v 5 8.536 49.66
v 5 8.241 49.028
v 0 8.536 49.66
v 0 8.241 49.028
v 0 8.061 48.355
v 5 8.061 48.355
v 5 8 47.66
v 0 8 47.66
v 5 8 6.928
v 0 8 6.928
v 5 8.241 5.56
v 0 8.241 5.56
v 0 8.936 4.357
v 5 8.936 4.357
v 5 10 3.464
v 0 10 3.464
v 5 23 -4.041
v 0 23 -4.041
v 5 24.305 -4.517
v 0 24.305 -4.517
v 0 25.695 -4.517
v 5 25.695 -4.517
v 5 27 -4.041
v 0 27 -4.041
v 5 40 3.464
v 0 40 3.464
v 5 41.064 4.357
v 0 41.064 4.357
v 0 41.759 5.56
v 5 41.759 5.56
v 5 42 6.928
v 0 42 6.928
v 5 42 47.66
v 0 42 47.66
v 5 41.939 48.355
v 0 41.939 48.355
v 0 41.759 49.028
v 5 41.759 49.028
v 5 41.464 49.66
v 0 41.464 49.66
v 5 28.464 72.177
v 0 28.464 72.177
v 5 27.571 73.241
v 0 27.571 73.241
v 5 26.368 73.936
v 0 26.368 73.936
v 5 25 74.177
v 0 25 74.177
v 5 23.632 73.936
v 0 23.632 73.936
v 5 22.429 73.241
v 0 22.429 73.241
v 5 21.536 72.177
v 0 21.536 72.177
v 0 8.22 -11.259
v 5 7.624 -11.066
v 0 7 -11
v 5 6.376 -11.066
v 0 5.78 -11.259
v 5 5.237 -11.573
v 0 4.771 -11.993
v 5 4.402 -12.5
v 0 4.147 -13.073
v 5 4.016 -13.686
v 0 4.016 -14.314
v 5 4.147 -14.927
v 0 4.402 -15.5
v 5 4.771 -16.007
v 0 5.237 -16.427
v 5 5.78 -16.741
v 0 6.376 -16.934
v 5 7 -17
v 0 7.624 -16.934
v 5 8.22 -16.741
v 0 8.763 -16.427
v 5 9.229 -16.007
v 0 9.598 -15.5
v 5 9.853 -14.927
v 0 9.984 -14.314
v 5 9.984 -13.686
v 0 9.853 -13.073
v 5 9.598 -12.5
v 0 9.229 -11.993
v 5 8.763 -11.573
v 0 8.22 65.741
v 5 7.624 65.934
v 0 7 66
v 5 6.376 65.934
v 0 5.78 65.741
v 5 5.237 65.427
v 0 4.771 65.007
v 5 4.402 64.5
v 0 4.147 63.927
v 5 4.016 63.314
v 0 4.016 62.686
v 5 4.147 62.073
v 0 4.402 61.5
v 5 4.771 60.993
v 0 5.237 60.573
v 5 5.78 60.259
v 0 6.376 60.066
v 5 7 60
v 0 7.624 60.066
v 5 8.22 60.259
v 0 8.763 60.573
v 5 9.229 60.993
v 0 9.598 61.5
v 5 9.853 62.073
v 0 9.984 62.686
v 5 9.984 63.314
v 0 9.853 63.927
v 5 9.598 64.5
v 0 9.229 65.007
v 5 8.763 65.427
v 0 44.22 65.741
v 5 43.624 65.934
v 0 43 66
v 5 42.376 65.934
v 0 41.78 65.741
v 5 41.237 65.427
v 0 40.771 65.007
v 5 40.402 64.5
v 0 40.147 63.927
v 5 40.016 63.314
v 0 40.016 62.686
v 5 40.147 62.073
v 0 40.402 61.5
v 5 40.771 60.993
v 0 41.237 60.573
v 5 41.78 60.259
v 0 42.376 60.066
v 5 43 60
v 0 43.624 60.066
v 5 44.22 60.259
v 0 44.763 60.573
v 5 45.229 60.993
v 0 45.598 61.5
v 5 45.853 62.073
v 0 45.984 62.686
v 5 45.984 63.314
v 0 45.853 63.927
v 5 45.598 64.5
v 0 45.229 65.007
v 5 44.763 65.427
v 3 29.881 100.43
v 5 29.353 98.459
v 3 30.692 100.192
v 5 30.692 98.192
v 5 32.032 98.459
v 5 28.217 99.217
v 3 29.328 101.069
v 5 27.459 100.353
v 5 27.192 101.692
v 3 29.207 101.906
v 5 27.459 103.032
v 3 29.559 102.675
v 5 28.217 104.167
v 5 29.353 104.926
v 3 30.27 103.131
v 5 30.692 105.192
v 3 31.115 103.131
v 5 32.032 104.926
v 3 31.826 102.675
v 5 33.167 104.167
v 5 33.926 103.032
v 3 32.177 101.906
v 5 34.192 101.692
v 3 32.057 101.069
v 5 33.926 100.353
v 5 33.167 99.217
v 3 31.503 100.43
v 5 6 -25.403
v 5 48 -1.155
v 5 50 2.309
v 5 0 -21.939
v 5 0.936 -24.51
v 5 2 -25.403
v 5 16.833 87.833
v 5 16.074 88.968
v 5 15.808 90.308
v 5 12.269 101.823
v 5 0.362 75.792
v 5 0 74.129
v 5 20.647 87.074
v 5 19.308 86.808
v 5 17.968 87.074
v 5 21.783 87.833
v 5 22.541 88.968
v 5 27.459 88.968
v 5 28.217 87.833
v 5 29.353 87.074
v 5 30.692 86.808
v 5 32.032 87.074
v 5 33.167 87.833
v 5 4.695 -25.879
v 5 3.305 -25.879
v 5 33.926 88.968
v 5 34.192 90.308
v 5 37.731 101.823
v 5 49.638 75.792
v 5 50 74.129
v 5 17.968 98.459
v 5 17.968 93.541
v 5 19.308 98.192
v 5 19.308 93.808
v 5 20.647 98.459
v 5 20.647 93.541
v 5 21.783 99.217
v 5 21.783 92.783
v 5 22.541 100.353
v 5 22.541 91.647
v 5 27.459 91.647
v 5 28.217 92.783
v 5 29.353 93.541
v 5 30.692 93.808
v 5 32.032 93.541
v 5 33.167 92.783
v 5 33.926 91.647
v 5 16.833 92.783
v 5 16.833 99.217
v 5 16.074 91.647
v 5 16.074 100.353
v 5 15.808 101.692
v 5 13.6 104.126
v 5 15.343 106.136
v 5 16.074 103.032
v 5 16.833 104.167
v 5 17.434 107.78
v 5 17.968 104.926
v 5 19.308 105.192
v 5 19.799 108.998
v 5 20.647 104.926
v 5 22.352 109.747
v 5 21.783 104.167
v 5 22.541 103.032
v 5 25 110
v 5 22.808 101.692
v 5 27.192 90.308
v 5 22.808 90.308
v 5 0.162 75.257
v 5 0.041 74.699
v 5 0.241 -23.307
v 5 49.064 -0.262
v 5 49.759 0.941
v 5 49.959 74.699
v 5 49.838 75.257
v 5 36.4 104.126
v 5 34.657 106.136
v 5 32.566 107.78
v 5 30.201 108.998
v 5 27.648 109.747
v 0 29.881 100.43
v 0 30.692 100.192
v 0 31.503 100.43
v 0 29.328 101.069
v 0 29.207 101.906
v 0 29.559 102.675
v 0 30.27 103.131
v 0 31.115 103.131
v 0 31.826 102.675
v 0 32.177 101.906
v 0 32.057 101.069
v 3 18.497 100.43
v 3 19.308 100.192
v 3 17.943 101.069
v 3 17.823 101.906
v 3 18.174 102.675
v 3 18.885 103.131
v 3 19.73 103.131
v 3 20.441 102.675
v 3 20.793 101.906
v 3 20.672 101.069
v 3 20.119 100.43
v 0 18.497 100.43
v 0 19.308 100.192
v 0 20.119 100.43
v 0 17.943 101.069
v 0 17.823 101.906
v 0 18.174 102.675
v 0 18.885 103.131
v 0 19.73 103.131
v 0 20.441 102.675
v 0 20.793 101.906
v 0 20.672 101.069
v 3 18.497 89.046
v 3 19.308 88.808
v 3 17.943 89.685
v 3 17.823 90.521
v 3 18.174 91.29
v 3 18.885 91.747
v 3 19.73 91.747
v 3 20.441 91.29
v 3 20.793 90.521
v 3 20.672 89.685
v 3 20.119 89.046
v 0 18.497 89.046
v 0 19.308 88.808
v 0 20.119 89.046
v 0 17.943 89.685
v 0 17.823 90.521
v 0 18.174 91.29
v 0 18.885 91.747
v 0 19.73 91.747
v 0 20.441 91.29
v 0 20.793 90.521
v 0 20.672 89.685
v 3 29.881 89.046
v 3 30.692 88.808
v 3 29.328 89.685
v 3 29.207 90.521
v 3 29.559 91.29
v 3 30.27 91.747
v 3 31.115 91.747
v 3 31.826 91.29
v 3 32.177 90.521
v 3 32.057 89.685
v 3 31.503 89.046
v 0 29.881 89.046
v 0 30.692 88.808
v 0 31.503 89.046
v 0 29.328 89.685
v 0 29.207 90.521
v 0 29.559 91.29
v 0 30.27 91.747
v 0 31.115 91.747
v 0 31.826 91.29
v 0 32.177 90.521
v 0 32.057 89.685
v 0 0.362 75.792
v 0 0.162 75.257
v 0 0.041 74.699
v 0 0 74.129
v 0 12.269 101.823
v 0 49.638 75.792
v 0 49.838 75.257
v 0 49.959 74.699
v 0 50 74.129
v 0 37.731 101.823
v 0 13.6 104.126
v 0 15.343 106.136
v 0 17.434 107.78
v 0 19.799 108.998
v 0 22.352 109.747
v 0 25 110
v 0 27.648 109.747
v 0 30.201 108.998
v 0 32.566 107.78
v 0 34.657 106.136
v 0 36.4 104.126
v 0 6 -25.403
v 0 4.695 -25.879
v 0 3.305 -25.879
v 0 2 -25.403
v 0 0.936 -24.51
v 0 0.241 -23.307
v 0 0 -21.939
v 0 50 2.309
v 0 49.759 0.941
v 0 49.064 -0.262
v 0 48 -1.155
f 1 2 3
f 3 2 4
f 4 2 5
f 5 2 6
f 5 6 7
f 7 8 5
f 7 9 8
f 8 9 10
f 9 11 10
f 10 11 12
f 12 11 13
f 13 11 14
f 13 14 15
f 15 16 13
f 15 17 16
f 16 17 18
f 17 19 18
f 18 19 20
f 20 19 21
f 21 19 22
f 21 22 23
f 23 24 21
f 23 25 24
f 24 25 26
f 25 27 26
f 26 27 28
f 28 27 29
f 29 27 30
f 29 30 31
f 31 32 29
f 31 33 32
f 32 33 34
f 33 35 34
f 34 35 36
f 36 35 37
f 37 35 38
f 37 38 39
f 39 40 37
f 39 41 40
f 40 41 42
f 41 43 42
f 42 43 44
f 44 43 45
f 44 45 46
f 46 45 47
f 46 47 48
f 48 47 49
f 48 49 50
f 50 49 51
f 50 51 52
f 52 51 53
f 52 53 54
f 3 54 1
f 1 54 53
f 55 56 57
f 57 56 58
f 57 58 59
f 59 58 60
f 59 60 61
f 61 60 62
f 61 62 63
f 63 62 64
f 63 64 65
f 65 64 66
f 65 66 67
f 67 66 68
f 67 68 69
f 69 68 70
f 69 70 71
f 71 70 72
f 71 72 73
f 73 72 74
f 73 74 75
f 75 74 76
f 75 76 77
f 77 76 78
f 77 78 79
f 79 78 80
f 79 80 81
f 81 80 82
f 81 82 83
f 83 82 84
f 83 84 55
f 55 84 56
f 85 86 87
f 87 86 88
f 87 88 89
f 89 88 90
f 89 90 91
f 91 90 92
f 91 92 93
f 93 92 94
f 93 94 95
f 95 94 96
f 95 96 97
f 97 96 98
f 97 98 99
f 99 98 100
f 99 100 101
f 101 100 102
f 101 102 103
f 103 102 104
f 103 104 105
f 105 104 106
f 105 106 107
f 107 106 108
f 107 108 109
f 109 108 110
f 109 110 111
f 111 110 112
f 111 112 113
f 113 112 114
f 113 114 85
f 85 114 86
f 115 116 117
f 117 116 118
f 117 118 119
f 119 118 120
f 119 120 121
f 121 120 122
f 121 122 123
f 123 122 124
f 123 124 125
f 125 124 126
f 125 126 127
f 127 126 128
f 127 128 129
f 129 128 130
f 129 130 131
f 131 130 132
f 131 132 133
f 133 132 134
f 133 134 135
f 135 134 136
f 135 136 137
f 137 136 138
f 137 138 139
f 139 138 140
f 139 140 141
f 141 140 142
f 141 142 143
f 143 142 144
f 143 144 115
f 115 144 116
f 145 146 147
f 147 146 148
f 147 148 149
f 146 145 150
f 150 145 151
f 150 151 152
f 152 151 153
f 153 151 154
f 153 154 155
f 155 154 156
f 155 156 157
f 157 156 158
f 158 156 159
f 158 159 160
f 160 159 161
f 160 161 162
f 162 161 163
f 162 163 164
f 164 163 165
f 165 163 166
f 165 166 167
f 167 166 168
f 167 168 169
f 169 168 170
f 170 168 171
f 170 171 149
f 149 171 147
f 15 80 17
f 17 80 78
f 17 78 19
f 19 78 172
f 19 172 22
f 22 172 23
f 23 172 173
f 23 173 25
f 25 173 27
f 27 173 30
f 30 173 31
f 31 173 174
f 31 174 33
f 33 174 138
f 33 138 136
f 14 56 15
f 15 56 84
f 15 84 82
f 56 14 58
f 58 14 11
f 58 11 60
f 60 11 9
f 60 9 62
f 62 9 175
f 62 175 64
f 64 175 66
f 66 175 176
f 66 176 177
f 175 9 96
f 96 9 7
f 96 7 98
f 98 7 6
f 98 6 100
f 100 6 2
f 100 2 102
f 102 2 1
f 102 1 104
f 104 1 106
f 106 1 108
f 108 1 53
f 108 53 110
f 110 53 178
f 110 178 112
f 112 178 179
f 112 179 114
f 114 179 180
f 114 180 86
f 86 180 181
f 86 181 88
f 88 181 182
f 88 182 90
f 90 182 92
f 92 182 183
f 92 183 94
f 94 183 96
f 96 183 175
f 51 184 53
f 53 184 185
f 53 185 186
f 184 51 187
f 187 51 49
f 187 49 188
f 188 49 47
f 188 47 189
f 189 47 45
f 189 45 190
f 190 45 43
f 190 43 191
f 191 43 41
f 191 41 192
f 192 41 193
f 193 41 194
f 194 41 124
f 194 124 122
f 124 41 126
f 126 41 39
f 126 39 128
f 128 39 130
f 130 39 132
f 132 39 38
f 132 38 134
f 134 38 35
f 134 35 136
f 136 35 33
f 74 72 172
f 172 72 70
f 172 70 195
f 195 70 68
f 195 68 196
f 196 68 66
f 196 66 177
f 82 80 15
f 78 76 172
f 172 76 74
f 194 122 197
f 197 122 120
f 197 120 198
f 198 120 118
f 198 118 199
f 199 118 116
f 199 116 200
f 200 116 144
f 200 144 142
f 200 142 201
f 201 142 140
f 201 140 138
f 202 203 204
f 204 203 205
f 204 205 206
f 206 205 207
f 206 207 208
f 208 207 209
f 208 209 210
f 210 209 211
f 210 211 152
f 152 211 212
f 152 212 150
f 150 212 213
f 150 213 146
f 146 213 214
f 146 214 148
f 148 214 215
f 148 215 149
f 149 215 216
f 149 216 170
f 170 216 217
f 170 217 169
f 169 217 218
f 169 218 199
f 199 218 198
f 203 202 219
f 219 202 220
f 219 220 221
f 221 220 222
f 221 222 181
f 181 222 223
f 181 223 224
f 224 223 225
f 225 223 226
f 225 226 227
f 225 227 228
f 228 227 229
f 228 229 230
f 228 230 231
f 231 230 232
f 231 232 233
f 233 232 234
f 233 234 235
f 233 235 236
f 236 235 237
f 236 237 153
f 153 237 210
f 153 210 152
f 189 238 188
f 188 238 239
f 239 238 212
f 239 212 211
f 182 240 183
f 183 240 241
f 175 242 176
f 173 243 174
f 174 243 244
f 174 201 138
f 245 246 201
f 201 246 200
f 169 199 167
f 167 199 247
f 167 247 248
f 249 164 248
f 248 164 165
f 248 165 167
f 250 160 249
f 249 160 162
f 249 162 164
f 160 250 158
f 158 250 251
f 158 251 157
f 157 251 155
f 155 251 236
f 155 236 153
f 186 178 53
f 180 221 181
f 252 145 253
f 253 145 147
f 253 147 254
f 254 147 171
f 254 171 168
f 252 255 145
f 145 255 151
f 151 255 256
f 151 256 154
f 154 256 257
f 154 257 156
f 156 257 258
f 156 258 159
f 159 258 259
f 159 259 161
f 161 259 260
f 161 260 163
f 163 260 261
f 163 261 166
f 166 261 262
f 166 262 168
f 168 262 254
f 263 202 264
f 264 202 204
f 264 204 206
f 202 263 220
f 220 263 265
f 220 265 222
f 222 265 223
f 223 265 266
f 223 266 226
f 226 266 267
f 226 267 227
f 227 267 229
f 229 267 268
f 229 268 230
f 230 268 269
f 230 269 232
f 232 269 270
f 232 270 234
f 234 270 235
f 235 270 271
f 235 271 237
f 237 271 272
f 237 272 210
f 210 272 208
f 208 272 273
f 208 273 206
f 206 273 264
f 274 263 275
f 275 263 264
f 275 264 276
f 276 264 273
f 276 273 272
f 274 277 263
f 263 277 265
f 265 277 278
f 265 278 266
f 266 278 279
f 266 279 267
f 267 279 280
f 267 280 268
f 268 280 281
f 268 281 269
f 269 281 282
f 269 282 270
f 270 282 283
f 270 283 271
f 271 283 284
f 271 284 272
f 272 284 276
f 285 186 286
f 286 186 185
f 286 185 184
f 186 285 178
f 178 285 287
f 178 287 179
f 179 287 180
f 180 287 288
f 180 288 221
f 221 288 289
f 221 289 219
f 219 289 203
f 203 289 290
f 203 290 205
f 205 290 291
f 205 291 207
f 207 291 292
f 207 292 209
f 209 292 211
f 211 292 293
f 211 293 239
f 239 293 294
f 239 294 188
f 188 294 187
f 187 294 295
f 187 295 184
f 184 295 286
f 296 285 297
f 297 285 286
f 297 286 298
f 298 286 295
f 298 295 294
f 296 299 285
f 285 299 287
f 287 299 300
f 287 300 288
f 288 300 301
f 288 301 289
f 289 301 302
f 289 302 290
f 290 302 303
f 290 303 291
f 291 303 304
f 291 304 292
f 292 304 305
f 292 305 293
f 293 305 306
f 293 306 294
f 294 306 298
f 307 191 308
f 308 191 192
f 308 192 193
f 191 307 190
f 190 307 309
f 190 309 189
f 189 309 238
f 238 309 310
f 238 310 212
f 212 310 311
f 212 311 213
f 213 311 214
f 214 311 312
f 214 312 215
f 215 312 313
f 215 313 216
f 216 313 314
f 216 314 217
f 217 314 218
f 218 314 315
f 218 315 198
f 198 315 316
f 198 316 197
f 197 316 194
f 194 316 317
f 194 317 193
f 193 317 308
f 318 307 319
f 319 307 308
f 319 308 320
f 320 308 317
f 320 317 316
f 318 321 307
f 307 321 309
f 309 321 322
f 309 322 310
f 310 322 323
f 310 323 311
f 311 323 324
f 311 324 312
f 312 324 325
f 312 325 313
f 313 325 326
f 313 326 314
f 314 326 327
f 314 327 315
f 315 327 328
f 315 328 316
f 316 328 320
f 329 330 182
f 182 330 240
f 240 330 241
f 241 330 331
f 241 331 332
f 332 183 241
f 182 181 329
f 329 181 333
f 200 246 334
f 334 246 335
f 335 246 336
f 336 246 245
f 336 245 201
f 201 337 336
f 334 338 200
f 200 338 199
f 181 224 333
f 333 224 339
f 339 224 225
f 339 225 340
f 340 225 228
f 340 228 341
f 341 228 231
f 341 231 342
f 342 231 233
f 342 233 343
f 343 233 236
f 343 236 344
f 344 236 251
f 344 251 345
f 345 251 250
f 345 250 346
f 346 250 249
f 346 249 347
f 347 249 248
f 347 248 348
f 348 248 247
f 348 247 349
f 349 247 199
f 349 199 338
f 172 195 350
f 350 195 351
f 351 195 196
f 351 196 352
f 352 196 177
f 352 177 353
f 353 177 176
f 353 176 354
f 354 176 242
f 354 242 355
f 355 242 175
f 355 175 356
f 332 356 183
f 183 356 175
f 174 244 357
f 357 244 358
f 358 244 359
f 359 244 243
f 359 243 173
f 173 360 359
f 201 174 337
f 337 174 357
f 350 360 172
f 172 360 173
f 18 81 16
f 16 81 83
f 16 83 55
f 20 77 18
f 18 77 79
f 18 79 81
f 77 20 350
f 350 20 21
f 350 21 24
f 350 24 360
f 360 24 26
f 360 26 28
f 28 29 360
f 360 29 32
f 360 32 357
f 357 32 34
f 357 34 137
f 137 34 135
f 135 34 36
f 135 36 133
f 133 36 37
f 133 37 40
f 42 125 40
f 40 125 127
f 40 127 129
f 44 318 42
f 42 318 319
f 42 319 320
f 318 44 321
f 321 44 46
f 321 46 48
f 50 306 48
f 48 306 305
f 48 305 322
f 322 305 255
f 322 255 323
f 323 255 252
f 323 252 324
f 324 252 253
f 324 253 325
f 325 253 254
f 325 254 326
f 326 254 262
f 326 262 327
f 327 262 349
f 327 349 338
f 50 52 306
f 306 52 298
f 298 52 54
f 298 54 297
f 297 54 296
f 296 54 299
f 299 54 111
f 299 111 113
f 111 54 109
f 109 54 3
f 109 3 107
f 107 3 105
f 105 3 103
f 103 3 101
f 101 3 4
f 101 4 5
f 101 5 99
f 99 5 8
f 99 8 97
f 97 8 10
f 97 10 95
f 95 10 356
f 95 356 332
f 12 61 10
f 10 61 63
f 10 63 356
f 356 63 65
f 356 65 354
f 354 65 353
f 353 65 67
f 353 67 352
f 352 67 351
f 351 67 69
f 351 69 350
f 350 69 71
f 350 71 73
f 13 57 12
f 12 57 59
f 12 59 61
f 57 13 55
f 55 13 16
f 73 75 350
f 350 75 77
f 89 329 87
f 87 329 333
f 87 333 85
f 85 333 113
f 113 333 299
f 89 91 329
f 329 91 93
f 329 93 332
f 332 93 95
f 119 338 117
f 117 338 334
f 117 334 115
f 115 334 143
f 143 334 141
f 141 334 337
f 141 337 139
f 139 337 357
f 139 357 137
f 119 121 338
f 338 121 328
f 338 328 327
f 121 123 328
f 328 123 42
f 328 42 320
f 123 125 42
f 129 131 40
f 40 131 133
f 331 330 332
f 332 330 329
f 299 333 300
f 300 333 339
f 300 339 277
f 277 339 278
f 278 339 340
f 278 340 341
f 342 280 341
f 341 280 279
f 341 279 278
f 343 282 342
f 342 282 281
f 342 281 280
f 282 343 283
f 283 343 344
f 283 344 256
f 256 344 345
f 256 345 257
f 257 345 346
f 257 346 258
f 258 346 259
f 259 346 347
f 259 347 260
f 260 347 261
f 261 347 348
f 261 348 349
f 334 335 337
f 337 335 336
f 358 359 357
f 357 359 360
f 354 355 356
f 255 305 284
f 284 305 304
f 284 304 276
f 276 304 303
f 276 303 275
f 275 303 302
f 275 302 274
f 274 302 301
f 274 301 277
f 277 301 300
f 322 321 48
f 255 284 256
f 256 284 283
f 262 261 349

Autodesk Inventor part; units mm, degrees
ref_plane "YZ Plane" through (0, 0, 0) normal (1, 0, 0) x (0, 1, 0)
ref_plane "XZ Plane" through (0, 0, 0) normal (0, 1, 0) x (-1, 0, 0)
ref_plane "XY Plane" through (0, 0, 0) normal (0, 0, 1) x (1, 0, 0)
sketch "Sketch1" plane through (0, 0, 0) normal (1, 0, 0) x (0, 1, 0)
  line L0 (0, 0) -> (50, 0)
  line L1 (50, 0) -> (50, 110)
  line L2 (50, 110) -> (0, 110)
  line L3 (0, 110) -> (0, 0)
  line L4 (50, 0) -> (0, -28.8675)
  line L5 (0, -28.8675) -> (0, 0)
  dimension "d0" = 110
  dimension "d1" = 50
  dimension "d68" = 60
extrude "Extrusion1" add sketch "Sketch1" along normal blind 5
fillet "Fillet1" radius 4 2 edges at (2.5, 50, 0) (2.5, 0, -28.8675)
sketch "Sketch2" plane through (5, 0, 0) normal (1, 0, 0) x (0, 0, -1)
  line L0 (-2.3094, 50) -> (-110, 50) projected
  line L1 (-110, 50) -> (-110, 0) projected
  line L2 (-110, 33.9915) -> (-75, 50)
  line L3 (-110, 16.0085) -> (-75, 0)
  line L4 (-110, 50) -> (-56.045, 50)
  line L5 (-56.045, 50) -> (-56.045, 0)
  line L6 (-56.045, 0) -> (-110, 0)
  line L7 (-110, 0) -> (-110, 50)
  line L8 (-110, 33.9915) -> (-110, 16.0085)
  line L9 (-110, 50) -> (-110, 0) projected
  line L10 (-110, 0) -> (-75, 0)
  circle A0 centre (-96, 25) radius 14
  circle A1 centre (-96, 25) radius 8.05
  line L11 (-96, 25) -> (-90.3078, 19.3078)
  line L12 (-96, 25) -> (-87.95, 25) construction
  circle A2 centre (-90.3078, 19.3078) radius 1.5
  circle A3 centre (-90.3078, 30.6922) radius 1.5
  circle A4 centre (-101.6922, 30.6922) radius 1.5
  circle A5 centre (-101.6922, 19.3078) radius 1.5
  point P0 (0, 0)
  point P1 (-110, 0)
  point P2 (-75, 0)
  point P3 (-110, 25)
  point P4 (-101.8232, 37.7315)
  point P5 (-101.8232, 12.2685)
  dimension "d84" = 16.1
  dimension "d13" = 35
  dimension "d82" = 28
  dimension "d83" = 25
  dimension "d86" = 45
  dimension "d87" = 3
  dimension "d90" = 360
extrude "Extrusion2" cut sketch "Sketch2" against normal blind 5 contours L2 L1 L0 | A0 L1 L2 | L6 L1 L3 | A0 L3 L1 | A3 A1 | A1 A3 | A2 A1 | A1 L11 A2 | A1 A2 L11 | A4 A1 | A1 A4 | A5 A1 | A1 A5
fillet "Fillet3" radius 4 1 edges at (2.5, 50, 75)
chamfer "Chamfer1" distance 2 angle 45 4 edges at (5, 30.6922, 91.8078) (5, 19.3078, 91.8078) (5, 19.3078, 103.1922) (5, 30.6922, 103.1922)
sketch "Sketch7" plane through (5, 0, 0) normal (1, 0, 0) x (0, 0, -1)
  circle A0 centre (-63, 43) radius 3
  circle A1 centre (-63, 7) radius 3
  circle A2 centre (14, 7) radius 3
  line L0 (-2.3094, 50) -> (-74.1286, 50) projected
  line L1 (-74.1286, 0) -> (21.9393, 0) projected
  point P0 (0, 0)
  dimension "d97" = 7
  dimension "d98" = 7
  dimension "d99" = 6
  dimension "d100" = 63
  dimension "d101" = 14
extrude "Extrusion7" cut sketch "Sketch7" against normal blind 10
sketch "Sketch8" plane through (5, 0, 0) normal (1, 0, 0) x (0, 0, -1)
  line L0 (-48.7321, 42) -> (-4.6188, 42)
  line L1 (-4.6188, 42) -> (-4.6188, 8)
  line L2 (-4.6188, 8) -> (-48.7321, 8)
  line L3 (-48.7321, 8) -> (-48.7321, 42)
  line L4 (-48.7321, 42) -> (-78.1769, 25)
  line L5 (-78.1769, 25) -> (-48.7321, 8)
  line L6 (-4.6188, 42) -> (5.1962, 25)
  line L7 (5.1962, 25) -> (-4.6188, 8)
  line L8 (25.4034, 6) -> (1.1547, 48) projected
  line L9 (-2.3094, 50) -> (-74.1286, 50) projected
  line L10 (-74.1286, 0) -> (21.9393, 0) projected
  circle A0 centre (-63, 43) radius 3 projected
  point P0 (0, 0)
  dimension "d104" = 8
  dimension "d105" = 8
  dimension "d106" = 8
  dimension "d107" = 8
extrude "Extrusion8" cut sketch "Sketch8" against normal blind 10 contours L0 L1 L2 L3 | L3 L5 L4 | L6 L7 L1
fillet "Fillet5" radius 4 6 edges at (2.5, 25, 78.1769) (2.5, 42, 48.7321) (2.5, 42, 4.6188) (2.5, 25, -5.1962) (2.5, 8, 4.6188) (2.5, 8, 48.7321)
properties part number "frame_side"
